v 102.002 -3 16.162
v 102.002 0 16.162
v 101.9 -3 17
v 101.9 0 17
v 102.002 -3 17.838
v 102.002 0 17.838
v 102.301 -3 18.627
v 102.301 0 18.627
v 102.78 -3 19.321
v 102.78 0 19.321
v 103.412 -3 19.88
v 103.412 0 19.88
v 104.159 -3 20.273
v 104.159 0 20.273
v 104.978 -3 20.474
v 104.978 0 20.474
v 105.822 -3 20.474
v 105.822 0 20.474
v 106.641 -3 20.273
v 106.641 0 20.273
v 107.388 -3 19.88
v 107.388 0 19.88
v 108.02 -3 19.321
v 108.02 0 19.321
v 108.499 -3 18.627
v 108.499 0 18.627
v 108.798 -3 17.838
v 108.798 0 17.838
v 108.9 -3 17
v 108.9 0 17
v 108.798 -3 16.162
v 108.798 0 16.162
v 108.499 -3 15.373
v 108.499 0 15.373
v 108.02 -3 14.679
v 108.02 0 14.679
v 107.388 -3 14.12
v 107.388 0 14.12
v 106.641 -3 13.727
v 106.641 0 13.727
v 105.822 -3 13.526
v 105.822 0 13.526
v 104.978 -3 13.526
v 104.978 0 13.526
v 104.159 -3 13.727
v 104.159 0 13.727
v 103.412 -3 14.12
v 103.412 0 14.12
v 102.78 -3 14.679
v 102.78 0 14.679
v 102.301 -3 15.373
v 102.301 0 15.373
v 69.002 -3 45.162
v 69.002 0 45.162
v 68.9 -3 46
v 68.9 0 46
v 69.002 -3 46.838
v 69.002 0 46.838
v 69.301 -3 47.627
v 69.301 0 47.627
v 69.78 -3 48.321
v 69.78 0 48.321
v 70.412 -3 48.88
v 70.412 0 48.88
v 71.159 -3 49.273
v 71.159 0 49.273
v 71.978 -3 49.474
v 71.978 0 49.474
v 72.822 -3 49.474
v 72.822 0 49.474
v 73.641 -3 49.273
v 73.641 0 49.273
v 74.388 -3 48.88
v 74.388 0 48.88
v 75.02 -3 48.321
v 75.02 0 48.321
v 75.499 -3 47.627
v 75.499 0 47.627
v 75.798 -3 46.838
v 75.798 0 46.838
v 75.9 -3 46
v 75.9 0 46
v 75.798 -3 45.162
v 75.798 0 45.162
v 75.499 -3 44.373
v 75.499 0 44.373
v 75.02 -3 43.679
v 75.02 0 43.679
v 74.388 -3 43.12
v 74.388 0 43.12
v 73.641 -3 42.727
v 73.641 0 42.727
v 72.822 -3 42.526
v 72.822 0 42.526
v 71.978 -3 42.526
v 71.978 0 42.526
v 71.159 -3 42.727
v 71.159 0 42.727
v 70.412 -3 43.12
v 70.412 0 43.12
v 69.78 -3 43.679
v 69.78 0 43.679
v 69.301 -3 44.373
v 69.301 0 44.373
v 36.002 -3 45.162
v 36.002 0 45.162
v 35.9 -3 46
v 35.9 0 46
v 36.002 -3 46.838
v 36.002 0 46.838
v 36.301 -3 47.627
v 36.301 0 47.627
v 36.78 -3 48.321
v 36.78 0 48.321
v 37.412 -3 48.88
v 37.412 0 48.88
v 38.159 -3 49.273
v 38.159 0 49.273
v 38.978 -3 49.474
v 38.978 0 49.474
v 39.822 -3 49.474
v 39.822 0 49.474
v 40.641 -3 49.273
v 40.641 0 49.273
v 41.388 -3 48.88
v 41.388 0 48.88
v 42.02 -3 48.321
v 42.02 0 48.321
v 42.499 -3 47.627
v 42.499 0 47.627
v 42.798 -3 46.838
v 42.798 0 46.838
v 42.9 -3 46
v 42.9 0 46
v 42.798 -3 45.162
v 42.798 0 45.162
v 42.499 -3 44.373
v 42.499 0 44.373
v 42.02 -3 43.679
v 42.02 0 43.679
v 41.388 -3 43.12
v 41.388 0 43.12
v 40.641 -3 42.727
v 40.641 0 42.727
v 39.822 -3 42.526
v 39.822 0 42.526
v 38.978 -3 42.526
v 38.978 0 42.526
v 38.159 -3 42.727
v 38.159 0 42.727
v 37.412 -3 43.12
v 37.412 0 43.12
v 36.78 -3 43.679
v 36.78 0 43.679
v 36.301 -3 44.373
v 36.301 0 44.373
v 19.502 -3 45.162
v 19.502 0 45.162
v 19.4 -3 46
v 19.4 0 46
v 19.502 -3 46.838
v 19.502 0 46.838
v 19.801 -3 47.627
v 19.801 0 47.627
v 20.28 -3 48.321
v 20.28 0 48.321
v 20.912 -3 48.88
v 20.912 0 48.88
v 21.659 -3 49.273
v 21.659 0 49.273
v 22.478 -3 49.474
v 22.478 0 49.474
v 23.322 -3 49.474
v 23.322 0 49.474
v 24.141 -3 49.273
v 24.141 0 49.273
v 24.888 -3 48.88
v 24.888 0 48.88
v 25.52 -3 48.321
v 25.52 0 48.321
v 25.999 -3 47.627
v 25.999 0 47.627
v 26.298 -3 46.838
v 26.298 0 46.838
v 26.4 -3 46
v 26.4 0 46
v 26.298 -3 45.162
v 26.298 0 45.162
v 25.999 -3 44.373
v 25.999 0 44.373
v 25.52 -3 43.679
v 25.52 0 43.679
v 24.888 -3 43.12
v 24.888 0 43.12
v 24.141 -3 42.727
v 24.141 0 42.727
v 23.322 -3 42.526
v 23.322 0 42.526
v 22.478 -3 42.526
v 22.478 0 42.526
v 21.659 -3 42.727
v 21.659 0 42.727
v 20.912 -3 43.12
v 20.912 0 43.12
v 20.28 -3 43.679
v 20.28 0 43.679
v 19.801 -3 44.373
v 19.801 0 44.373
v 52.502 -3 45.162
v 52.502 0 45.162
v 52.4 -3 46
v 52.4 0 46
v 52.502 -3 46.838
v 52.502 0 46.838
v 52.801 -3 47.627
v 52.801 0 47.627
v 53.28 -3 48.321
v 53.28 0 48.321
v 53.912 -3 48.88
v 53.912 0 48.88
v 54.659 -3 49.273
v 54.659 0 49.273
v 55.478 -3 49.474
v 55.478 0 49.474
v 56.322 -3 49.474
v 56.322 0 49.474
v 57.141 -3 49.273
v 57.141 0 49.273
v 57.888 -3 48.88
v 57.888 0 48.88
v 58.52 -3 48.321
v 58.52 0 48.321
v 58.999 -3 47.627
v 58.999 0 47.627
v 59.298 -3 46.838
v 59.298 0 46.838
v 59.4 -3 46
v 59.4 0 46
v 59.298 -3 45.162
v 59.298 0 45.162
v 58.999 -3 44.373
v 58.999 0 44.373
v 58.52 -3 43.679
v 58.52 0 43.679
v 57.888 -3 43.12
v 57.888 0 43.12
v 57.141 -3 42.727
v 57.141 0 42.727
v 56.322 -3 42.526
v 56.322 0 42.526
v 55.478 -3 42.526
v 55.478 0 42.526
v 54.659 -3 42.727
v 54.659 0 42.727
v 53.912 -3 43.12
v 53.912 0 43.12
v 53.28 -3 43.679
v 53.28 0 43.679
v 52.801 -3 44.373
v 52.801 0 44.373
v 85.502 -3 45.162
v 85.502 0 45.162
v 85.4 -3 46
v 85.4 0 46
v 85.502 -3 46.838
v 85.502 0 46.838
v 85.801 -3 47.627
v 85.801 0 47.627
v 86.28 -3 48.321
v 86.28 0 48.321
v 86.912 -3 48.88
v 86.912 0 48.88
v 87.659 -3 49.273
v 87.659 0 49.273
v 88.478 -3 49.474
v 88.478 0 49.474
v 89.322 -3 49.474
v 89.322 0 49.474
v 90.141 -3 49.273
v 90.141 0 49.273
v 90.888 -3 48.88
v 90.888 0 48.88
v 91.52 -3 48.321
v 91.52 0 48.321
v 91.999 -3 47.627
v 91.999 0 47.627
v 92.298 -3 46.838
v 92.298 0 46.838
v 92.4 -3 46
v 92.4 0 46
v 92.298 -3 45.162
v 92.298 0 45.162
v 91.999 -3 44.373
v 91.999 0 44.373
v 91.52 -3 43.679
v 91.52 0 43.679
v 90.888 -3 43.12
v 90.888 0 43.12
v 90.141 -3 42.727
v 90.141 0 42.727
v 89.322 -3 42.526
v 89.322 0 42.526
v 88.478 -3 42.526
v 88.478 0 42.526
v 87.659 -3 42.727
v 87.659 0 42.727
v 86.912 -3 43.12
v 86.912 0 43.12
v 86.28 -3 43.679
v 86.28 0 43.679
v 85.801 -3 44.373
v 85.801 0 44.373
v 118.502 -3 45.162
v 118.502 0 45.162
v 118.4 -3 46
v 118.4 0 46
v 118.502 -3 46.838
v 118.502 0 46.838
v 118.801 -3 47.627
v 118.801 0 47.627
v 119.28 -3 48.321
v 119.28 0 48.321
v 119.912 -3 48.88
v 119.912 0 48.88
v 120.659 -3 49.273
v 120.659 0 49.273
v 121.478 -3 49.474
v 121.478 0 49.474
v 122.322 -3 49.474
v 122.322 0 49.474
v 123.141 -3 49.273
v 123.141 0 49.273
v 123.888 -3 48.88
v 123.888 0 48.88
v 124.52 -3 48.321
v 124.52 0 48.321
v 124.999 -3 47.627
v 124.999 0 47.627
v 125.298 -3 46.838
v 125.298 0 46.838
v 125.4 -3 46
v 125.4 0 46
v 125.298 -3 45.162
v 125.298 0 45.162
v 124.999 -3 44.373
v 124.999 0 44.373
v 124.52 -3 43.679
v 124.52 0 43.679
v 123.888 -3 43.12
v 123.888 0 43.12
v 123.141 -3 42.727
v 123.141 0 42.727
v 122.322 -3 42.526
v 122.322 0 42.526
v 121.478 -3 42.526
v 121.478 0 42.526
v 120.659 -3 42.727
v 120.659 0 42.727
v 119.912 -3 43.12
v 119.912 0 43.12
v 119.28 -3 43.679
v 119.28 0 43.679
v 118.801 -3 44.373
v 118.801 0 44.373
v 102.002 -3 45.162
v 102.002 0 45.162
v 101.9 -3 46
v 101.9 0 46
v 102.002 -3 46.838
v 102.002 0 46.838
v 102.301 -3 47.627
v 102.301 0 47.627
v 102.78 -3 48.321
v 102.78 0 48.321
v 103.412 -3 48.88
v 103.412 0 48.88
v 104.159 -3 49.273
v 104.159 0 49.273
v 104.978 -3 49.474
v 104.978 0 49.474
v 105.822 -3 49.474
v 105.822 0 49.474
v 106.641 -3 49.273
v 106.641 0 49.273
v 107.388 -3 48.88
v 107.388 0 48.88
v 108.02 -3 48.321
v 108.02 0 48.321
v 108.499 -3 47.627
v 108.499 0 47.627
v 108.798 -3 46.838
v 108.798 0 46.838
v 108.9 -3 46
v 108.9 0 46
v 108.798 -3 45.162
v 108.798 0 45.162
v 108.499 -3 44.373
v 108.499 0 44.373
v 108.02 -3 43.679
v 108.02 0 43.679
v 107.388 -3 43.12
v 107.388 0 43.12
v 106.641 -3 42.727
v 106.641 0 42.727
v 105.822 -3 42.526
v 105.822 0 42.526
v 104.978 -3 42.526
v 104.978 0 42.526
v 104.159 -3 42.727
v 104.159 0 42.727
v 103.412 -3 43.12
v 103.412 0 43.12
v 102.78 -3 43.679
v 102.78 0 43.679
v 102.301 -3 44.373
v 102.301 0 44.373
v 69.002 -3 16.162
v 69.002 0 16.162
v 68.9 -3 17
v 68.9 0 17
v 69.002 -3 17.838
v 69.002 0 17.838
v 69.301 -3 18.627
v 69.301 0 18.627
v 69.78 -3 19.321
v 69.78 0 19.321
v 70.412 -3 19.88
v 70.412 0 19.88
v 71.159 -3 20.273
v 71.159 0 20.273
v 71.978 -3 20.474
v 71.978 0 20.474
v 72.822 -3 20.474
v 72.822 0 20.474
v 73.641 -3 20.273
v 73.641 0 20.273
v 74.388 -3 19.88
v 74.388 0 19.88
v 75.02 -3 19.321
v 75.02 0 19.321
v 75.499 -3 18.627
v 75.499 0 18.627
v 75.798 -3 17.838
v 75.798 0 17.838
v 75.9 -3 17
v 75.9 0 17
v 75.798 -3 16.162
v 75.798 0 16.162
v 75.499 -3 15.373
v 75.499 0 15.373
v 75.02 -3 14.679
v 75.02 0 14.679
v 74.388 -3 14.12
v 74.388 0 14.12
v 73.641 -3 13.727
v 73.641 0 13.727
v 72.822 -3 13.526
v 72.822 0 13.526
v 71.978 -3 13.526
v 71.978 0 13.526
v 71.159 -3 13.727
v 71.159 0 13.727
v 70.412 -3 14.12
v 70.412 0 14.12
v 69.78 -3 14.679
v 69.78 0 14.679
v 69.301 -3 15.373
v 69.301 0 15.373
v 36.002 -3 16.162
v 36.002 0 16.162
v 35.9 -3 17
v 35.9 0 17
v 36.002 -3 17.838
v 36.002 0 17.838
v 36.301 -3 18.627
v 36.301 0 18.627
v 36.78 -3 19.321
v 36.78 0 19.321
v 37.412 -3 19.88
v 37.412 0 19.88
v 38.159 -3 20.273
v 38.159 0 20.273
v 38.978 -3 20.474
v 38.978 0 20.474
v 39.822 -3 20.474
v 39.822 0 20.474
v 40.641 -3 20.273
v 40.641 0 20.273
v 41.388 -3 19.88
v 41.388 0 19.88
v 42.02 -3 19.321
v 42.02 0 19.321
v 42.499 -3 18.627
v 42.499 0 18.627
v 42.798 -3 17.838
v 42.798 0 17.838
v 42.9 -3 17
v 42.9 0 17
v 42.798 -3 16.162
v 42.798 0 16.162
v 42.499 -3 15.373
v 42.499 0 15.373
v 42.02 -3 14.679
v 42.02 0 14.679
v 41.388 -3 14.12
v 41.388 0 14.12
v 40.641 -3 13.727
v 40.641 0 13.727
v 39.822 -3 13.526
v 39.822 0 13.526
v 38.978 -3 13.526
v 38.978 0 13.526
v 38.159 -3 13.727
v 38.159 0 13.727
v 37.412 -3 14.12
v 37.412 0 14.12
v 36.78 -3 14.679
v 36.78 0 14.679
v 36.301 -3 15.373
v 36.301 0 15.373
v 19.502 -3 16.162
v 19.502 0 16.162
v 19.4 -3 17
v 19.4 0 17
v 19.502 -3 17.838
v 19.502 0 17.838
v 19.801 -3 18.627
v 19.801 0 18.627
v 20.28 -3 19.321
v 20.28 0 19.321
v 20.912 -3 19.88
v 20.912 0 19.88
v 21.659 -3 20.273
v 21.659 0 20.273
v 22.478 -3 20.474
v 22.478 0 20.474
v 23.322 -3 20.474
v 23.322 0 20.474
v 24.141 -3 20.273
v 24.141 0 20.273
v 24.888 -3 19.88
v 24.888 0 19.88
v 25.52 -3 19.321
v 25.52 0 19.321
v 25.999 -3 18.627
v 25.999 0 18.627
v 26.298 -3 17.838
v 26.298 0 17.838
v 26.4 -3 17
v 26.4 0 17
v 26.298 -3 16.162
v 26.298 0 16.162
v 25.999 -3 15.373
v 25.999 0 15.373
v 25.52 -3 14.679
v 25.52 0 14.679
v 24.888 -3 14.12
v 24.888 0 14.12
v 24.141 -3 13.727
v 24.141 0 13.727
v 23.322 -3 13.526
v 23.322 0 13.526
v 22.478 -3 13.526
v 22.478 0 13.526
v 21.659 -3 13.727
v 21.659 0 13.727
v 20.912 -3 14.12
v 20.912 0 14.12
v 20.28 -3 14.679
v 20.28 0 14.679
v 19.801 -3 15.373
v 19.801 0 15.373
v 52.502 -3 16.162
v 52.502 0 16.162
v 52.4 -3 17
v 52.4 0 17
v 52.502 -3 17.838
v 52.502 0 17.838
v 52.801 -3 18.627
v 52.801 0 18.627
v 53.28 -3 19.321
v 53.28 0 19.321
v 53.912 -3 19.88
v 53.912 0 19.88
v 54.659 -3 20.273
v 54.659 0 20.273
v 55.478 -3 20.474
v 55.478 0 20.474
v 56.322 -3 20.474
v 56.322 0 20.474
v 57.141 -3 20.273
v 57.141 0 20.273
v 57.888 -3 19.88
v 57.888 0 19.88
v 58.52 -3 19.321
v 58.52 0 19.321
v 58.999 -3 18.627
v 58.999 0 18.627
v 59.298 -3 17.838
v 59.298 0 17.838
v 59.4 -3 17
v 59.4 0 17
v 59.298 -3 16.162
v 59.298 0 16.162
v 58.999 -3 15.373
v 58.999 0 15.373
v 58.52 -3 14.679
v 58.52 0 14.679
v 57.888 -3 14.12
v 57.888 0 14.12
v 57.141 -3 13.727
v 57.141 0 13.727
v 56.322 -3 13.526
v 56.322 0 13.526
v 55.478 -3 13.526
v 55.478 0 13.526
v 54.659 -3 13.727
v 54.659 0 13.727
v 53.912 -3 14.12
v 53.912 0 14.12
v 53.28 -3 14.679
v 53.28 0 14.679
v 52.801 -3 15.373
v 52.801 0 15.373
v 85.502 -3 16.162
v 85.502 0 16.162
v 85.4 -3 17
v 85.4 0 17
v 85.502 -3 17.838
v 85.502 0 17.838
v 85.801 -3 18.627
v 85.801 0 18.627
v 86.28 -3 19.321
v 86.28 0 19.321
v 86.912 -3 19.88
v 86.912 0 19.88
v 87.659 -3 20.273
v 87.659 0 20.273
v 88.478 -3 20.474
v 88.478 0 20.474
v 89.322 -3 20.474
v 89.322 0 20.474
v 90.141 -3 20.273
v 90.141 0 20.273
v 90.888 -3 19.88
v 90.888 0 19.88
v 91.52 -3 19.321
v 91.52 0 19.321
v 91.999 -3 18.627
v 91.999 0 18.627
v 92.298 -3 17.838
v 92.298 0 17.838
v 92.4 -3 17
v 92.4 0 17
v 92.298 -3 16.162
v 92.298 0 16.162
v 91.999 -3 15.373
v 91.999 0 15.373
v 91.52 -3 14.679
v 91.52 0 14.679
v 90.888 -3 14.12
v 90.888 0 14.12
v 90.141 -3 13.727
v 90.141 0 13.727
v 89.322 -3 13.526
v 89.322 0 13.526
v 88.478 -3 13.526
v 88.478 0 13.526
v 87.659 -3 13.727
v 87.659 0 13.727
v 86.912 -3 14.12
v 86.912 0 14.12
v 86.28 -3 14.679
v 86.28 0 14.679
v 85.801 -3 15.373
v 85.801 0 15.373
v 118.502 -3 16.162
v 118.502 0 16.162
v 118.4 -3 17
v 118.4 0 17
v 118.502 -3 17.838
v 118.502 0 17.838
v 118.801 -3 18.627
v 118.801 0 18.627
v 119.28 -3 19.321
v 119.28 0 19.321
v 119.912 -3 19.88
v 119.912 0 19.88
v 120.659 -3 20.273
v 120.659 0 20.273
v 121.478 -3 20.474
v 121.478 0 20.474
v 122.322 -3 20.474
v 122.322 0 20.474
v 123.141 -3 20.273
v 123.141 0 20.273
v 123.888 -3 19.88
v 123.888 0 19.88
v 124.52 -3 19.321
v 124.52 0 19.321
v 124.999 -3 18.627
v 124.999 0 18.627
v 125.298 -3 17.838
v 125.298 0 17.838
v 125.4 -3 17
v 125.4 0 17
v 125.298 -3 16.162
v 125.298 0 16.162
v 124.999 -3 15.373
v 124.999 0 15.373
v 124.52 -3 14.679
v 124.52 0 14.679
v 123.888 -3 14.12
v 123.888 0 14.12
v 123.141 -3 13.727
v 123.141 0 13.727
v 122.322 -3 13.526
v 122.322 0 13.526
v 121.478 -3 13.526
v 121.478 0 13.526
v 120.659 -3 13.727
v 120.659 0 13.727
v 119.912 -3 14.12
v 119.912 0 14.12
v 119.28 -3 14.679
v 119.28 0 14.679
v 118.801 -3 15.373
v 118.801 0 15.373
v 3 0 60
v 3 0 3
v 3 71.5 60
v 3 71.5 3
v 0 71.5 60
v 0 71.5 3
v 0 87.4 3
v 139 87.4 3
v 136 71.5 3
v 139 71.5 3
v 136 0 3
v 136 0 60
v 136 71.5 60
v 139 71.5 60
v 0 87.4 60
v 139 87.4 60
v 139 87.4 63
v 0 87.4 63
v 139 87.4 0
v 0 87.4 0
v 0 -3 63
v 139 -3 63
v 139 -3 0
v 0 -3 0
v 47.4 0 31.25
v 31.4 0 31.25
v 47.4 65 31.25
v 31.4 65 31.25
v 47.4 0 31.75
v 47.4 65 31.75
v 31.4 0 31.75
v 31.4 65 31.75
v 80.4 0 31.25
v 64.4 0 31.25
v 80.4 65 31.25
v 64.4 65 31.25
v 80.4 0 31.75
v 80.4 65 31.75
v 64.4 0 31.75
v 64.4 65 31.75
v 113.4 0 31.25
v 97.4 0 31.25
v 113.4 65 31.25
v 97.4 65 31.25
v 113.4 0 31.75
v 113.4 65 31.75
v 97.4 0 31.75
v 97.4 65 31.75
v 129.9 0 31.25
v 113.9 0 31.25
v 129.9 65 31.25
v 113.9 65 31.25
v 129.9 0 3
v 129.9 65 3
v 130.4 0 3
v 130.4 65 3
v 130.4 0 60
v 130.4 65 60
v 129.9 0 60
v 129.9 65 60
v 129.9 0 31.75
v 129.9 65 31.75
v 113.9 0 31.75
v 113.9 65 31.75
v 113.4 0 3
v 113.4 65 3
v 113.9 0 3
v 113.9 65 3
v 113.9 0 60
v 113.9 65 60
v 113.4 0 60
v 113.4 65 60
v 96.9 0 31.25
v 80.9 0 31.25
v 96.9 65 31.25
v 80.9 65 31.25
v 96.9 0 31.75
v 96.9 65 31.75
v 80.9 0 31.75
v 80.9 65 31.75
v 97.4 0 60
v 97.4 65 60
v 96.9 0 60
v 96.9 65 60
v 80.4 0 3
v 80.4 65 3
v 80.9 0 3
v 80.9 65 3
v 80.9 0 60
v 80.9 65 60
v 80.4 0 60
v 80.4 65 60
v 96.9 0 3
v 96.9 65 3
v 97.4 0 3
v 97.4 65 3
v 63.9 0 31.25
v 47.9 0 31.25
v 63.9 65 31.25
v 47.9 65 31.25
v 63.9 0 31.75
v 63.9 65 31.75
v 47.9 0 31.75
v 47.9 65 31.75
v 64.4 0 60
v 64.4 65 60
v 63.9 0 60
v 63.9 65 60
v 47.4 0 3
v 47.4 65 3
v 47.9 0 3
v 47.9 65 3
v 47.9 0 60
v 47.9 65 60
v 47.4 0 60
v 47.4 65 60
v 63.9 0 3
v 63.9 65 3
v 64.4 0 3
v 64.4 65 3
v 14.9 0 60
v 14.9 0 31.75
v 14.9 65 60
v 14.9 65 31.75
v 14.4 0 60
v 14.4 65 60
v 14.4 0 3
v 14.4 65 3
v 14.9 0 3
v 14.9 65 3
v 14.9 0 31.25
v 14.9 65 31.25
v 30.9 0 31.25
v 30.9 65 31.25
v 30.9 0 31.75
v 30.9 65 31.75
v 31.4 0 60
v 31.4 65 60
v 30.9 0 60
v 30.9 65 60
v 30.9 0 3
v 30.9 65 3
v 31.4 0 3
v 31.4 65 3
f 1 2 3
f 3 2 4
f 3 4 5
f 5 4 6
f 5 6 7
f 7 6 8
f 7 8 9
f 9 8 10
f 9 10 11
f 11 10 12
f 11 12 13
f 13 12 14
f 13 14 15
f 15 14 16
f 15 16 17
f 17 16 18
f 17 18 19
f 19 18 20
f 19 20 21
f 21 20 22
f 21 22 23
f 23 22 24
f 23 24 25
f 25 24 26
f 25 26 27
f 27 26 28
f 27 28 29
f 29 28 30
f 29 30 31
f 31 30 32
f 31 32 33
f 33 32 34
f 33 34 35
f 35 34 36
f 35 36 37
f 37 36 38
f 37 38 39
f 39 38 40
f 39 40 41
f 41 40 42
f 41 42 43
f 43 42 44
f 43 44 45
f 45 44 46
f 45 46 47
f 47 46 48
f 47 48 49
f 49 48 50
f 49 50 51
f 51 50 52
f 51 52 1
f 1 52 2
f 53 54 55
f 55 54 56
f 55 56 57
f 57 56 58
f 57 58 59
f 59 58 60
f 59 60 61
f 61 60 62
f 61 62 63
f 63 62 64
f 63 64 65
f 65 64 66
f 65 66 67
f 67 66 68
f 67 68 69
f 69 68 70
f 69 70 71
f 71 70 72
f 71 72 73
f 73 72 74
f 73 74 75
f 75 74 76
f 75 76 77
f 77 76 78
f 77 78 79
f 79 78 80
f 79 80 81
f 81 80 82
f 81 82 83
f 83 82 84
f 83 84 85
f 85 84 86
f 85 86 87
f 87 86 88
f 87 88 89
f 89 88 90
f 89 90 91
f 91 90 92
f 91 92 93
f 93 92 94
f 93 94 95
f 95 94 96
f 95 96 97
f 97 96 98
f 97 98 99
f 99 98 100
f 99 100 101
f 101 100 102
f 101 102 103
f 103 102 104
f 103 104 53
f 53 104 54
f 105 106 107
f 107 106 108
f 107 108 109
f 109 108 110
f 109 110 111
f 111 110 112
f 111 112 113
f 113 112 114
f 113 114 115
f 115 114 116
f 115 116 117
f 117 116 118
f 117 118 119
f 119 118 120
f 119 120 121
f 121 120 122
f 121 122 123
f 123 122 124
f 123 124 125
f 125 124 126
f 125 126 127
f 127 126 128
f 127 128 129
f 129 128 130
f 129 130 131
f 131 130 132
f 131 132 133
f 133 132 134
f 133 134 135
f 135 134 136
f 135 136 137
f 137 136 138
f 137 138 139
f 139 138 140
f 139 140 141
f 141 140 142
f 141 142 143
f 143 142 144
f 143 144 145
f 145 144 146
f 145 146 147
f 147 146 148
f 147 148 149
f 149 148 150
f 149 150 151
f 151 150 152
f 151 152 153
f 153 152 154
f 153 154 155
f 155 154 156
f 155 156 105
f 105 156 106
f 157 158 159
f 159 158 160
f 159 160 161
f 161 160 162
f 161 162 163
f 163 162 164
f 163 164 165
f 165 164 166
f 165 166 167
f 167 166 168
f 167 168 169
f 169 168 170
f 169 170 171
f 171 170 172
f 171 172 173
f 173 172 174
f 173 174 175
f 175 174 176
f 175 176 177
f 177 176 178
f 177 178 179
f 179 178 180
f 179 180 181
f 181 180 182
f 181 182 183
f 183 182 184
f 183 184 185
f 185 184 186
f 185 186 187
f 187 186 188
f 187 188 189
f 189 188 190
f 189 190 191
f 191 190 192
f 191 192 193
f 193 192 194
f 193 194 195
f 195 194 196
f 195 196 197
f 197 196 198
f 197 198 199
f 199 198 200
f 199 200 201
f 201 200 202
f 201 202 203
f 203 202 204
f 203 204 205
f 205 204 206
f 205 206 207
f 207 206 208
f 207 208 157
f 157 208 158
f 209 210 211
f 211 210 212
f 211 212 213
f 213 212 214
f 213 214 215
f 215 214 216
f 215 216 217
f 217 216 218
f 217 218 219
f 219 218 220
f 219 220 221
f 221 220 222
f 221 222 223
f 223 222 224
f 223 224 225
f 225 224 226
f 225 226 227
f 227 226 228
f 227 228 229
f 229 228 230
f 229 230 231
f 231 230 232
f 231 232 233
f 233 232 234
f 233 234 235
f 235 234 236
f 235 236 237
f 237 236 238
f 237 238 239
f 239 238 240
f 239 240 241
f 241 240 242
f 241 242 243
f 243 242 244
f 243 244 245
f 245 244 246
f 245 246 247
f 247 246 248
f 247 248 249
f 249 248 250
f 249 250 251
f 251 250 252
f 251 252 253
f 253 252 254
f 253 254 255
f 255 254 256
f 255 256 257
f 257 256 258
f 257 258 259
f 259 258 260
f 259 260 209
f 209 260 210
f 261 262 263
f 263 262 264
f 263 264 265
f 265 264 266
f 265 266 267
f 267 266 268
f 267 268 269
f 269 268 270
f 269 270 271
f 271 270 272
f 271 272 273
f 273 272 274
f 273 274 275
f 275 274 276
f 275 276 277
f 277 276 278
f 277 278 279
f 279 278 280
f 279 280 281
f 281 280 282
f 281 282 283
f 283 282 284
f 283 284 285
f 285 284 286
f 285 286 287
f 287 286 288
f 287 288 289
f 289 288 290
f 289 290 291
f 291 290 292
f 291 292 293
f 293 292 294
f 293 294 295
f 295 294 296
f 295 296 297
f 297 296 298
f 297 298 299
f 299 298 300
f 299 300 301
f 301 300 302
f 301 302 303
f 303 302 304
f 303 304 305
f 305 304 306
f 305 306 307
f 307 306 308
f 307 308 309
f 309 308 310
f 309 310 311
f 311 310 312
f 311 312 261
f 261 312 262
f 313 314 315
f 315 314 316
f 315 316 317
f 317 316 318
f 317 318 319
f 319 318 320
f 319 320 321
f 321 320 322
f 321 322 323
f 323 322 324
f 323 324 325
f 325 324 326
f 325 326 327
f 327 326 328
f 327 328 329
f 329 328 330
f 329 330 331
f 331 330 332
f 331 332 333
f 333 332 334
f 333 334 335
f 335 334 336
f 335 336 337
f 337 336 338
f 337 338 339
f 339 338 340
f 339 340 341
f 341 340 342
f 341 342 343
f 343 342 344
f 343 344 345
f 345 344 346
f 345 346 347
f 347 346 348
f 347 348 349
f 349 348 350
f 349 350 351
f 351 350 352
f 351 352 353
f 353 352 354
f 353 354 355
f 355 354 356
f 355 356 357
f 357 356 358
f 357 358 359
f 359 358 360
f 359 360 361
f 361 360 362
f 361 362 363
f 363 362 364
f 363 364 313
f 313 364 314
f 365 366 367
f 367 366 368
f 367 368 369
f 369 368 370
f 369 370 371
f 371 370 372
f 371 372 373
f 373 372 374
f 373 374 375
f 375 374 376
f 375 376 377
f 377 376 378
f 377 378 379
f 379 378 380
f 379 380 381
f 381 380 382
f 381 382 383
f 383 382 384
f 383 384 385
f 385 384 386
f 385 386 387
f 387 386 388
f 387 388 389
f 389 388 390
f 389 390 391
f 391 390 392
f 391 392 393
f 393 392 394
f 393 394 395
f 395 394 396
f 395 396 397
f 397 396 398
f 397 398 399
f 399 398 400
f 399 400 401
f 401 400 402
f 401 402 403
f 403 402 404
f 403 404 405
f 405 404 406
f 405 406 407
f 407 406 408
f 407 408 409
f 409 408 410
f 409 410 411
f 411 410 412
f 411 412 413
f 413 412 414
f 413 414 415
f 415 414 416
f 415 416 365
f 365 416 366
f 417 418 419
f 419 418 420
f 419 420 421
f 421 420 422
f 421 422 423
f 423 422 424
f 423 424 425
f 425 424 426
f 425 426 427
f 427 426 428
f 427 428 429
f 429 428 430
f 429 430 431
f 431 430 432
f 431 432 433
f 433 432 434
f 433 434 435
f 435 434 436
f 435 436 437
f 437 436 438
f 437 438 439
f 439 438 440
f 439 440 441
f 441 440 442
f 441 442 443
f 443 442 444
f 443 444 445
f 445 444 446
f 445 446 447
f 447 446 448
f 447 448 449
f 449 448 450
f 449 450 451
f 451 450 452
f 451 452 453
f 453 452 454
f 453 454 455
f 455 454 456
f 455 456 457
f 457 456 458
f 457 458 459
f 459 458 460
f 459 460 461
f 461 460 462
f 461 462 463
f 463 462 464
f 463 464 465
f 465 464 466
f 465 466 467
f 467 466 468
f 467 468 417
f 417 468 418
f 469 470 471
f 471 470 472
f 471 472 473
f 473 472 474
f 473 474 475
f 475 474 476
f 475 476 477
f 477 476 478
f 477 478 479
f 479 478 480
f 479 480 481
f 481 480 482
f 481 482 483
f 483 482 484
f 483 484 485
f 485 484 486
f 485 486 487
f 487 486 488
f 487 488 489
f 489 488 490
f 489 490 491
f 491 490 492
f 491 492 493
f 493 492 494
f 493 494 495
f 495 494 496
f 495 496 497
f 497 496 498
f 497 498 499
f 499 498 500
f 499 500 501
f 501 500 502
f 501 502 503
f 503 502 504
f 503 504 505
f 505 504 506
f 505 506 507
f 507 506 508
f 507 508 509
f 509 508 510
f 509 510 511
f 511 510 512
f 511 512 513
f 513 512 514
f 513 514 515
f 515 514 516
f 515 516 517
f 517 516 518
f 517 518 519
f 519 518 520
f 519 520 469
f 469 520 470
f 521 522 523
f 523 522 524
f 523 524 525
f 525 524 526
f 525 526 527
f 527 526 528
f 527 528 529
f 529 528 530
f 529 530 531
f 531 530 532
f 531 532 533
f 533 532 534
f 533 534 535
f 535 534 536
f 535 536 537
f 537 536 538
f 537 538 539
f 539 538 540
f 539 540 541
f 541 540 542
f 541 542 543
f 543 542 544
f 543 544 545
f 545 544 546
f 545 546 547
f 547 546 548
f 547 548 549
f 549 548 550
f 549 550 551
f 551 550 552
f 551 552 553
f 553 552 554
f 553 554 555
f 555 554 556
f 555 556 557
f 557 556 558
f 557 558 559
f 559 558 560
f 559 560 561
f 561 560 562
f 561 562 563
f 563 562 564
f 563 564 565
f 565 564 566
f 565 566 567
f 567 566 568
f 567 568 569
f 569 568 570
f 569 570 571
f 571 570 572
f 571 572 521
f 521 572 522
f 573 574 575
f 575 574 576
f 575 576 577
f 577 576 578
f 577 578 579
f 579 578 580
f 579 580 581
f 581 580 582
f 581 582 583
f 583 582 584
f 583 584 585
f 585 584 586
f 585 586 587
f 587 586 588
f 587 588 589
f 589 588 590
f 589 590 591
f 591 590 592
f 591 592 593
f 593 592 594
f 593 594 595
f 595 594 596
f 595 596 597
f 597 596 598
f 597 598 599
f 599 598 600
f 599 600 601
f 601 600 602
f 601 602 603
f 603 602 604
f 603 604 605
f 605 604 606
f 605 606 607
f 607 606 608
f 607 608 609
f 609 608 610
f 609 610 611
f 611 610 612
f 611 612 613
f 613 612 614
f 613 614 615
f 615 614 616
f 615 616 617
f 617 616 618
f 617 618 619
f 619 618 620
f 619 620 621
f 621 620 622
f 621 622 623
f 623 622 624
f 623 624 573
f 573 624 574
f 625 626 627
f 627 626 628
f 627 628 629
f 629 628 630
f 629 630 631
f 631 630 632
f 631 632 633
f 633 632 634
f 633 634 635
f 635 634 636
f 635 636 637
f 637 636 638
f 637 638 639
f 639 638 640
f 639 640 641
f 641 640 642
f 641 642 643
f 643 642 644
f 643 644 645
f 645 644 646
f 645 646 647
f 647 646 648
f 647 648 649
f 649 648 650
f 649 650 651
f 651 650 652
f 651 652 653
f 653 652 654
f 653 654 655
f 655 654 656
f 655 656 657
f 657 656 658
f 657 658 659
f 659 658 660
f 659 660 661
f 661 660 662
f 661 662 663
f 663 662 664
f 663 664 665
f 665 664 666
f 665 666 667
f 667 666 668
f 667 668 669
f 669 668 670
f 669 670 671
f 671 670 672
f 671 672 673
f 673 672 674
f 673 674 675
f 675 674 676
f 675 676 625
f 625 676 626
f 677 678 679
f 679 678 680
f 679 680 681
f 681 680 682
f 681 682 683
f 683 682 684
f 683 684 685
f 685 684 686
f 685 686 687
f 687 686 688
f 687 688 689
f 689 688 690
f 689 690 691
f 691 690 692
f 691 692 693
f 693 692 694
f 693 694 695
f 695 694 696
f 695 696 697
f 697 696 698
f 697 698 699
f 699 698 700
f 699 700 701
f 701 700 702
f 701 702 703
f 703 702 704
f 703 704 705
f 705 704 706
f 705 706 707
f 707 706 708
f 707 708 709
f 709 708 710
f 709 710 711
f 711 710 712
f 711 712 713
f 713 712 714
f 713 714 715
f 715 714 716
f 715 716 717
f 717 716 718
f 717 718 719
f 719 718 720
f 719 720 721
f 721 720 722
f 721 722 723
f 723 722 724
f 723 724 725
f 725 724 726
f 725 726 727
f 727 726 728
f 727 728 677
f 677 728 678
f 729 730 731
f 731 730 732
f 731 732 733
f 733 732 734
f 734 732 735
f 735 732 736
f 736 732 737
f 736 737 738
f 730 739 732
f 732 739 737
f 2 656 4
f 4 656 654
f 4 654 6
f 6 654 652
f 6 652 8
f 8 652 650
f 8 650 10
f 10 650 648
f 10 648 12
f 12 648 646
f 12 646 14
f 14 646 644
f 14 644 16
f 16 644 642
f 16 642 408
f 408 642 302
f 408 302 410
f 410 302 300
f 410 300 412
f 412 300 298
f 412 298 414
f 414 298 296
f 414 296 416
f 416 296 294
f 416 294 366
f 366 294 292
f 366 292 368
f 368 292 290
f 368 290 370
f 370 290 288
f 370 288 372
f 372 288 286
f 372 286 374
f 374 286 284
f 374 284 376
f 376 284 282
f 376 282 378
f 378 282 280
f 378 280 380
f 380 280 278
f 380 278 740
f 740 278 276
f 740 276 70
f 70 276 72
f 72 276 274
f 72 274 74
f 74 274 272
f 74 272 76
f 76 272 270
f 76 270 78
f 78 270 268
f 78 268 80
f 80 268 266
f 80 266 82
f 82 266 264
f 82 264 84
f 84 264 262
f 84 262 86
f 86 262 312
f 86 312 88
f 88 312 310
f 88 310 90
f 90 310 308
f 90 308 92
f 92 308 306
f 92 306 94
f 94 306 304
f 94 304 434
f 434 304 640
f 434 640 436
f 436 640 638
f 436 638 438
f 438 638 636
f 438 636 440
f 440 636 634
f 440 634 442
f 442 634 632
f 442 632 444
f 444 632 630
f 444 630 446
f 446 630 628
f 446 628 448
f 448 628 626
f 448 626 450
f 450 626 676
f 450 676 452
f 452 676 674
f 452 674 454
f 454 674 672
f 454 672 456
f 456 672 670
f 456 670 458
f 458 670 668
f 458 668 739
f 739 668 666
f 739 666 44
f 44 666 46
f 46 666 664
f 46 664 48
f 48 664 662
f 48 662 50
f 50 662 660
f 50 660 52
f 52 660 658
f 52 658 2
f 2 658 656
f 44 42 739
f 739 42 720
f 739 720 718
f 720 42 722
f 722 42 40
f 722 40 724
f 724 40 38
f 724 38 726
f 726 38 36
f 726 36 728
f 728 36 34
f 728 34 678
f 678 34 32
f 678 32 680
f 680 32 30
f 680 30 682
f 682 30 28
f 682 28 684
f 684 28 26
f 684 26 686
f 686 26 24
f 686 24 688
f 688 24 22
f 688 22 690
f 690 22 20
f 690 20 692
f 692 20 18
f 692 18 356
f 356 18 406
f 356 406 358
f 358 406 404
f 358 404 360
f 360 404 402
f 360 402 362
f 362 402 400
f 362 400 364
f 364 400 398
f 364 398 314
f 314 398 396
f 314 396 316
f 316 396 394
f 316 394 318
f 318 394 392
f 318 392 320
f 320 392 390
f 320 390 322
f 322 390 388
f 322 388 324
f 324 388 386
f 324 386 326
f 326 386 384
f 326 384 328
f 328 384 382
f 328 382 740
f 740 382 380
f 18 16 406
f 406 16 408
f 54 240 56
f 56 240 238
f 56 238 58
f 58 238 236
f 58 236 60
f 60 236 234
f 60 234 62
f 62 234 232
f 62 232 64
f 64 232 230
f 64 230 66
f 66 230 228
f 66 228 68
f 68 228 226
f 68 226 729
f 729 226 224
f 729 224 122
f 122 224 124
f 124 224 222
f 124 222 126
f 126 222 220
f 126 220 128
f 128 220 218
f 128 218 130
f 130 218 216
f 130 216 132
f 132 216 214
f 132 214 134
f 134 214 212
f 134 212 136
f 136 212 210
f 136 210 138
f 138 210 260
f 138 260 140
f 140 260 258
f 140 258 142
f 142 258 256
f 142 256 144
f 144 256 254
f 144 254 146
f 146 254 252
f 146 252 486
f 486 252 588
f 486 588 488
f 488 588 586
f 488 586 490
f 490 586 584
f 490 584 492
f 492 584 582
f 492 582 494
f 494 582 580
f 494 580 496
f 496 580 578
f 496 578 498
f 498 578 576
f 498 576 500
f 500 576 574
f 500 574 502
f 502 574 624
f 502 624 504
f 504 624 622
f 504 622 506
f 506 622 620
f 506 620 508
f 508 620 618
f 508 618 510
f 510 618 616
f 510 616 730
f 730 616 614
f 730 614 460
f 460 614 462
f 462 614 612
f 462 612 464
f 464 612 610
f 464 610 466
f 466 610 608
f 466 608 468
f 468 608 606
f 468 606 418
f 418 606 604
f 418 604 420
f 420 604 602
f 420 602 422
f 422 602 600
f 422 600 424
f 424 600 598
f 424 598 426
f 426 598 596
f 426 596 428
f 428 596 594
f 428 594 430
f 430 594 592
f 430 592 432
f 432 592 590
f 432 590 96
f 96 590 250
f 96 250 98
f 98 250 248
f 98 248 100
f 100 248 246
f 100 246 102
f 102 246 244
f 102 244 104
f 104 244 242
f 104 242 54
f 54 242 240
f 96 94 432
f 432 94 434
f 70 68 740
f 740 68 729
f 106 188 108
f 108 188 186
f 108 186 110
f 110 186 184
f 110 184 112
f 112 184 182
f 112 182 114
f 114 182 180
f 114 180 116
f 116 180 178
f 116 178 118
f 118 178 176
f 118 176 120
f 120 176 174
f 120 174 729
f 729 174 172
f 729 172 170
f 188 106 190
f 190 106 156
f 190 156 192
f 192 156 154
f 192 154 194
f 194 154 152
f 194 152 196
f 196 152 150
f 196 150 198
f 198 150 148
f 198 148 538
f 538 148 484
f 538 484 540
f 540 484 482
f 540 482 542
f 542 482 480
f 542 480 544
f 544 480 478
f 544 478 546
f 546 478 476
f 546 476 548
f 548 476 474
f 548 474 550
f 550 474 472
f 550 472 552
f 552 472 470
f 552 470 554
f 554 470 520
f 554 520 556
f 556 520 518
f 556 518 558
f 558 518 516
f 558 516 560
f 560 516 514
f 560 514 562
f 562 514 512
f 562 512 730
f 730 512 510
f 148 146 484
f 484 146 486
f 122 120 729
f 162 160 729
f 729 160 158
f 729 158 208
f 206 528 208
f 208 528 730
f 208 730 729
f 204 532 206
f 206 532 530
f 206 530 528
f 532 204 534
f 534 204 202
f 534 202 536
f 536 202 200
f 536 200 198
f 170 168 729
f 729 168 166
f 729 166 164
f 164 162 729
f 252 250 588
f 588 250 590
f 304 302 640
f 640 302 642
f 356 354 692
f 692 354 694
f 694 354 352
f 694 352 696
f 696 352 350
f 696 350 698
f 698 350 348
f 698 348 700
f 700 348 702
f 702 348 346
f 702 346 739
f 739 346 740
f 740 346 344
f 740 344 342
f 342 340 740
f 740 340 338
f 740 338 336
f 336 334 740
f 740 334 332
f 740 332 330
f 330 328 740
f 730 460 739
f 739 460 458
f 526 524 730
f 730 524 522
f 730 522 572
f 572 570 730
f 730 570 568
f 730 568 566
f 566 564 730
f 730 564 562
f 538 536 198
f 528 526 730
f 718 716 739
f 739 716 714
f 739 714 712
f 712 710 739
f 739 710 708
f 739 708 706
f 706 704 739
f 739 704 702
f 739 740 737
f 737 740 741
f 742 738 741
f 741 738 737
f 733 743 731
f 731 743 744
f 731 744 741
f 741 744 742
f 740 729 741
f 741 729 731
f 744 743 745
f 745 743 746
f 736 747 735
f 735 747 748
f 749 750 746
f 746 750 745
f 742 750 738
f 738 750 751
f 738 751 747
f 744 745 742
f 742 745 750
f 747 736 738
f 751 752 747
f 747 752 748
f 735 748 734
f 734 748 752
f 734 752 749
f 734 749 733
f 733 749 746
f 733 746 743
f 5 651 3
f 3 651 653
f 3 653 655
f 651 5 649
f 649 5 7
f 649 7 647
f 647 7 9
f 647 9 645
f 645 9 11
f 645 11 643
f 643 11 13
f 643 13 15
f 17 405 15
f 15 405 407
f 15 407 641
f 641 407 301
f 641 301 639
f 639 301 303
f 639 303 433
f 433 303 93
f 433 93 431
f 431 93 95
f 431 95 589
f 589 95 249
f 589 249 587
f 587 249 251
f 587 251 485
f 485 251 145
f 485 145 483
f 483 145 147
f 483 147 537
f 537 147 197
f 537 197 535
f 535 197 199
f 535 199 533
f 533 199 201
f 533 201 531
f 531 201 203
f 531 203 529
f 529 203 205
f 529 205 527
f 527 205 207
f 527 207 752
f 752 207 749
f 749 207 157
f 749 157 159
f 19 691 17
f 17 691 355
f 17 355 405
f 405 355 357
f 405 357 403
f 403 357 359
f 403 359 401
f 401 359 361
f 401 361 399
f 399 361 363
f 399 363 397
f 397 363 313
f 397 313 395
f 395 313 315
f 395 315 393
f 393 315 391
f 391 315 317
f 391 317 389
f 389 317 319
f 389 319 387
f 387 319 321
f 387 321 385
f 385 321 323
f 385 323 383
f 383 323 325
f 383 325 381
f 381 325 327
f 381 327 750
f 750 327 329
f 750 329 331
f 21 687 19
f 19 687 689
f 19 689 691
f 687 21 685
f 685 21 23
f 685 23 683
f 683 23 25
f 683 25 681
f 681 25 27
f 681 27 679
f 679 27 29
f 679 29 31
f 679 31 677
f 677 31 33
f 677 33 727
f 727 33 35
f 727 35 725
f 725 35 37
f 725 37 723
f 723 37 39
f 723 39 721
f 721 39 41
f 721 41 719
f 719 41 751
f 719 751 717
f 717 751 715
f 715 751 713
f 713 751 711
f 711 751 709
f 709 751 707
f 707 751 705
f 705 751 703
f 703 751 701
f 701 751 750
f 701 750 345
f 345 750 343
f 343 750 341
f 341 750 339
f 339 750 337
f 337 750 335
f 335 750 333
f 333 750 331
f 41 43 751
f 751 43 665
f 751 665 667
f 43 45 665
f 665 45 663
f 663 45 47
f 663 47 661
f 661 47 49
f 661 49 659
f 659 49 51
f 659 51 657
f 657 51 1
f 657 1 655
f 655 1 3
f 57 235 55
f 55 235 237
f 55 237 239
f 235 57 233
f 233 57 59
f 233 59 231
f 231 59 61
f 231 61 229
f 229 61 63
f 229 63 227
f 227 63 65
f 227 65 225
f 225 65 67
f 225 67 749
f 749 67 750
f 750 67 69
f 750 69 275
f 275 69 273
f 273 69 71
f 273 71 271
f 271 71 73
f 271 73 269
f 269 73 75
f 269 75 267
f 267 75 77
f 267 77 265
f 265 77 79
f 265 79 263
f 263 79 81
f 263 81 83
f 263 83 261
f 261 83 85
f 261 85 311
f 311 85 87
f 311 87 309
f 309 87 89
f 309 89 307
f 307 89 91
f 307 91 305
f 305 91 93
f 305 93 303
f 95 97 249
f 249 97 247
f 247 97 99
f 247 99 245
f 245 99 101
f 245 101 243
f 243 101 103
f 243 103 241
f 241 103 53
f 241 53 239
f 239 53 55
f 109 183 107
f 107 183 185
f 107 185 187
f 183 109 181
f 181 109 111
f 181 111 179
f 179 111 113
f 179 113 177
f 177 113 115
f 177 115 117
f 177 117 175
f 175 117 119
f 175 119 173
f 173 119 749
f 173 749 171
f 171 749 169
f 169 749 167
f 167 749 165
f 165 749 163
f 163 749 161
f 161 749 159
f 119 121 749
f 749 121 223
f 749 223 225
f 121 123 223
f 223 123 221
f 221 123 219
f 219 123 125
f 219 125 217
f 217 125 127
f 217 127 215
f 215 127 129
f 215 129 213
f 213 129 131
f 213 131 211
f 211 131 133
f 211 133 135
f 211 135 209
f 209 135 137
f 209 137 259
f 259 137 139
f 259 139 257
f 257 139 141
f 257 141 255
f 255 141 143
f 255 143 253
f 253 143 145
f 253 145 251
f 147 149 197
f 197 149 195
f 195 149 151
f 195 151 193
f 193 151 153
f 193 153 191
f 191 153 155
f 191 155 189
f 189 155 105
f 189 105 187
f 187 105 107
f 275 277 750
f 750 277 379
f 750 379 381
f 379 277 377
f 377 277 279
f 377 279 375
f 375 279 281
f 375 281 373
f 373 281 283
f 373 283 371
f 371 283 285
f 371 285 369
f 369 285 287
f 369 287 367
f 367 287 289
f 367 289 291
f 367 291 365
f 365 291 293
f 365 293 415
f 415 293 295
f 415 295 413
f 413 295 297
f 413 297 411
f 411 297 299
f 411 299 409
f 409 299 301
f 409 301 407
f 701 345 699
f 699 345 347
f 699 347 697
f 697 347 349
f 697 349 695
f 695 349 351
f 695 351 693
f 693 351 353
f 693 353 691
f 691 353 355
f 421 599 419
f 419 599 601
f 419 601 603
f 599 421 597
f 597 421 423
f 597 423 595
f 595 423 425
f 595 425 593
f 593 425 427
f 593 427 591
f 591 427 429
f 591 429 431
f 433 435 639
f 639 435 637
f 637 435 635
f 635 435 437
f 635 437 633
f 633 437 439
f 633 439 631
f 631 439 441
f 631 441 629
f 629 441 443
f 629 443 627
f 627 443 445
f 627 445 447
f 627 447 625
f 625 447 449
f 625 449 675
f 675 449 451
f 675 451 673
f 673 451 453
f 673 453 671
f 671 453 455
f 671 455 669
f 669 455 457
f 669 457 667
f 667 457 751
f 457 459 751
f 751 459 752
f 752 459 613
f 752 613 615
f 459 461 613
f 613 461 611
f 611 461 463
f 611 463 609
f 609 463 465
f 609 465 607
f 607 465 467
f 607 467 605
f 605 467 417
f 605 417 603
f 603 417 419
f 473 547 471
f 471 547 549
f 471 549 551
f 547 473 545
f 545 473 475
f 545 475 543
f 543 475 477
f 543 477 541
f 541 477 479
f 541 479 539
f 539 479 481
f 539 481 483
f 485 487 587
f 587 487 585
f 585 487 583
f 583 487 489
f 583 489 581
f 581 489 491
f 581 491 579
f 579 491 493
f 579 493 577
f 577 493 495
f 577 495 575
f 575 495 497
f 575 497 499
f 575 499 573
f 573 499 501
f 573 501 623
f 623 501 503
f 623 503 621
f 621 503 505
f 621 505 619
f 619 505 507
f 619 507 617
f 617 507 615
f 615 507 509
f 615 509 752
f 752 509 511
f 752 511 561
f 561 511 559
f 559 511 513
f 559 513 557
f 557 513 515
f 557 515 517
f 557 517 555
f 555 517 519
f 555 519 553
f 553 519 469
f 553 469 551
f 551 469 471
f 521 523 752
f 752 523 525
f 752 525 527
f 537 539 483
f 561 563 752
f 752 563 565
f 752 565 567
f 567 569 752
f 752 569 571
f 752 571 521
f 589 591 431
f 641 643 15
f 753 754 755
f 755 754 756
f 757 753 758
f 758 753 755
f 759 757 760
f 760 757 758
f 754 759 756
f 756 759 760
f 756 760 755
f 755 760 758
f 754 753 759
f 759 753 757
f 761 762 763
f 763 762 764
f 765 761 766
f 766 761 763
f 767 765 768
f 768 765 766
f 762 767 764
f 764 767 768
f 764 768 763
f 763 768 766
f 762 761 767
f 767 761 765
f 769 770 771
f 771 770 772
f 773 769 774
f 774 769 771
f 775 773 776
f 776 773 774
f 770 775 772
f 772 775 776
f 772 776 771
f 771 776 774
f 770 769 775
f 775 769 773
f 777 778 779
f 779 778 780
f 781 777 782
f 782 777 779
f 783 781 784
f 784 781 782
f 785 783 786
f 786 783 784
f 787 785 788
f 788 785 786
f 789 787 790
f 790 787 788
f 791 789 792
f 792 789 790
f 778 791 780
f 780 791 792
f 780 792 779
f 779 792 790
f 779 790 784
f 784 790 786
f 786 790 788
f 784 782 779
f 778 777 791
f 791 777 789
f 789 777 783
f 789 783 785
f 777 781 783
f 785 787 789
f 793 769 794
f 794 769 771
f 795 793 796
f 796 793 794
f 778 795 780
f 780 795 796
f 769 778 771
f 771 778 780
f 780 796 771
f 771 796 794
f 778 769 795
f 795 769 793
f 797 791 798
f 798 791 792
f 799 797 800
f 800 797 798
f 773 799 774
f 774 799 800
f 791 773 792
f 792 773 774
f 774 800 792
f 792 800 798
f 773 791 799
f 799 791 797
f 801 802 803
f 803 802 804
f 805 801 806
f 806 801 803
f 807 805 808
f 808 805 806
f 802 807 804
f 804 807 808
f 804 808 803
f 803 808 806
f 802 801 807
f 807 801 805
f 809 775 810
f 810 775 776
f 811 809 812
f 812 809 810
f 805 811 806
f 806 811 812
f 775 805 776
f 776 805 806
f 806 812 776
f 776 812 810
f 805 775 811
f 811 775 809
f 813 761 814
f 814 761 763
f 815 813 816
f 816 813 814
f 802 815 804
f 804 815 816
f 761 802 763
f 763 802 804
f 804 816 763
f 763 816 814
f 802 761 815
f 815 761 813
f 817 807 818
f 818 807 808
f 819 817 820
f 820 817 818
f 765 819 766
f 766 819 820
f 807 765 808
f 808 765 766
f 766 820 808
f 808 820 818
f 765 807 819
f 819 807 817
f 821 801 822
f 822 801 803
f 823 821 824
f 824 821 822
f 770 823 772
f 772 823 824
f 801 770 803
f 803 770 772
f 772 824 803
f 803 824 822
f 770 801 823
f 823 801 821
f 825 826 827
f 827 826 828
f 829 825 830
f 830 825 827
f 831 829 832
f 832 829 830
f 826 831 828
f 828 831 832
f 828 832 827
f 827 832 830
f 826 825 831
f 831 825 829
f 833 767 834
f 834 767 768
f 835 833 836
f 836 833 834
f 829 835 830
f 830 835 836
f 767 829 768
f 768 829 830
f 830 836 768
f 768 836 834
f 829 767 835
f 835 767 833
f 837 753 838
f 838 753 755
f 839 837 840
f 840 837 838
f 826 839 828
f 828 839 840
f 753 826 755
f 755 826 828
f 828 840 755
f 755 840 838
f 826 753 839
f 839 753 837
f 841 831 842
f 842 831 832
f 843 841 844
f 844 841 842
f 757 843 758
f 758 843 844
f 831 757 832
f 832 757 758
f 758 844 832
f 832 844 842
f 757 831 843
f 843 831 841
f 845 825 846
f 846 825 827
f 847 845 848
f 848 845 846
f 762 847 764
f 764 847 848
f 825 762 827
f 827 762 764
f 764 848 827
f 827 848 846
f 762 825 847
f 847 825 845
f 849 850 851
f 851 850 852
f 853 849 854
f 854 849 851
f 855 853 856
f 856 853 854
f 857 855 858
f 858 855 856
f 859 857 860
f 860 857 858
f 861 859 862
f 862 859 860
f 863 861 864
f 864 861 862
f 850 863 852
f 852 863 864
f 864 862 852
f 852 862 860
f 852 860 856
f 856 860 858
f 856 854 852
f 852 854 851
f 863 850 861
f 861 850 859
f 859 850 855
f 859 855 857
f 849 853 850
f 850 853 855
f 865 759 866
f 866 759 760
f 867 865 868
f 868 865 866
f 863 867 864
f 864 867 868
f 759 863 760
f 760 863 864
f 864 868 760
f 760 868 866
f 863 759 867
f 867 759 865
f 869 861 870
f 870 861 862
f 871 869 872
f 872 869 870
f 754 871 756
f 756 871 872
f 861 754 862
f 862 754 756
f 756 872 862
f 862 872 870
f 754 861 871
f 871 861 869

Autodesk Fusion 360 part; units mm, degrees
sketch "Sketch1" plane through (0, 0, 0) normal (0, 1, 0) x (1, 0, 0)
  line L0 (0, 0) -> (139, 0)
  line L1 (139, 0) -> (139, -63)
  line L2 (139, -63) -> (0, -63)
  line L3 (0, -63) -> (0, 0)
  line L4 (0, 0) -> (139, 0)
  line L5 (139, 0) -> (139, -3)
  line L6 (139, -3) -> (0, -3)
  line L7 (0, -3) -> (0, 0)
  line L8 (0, -60) -> (139, -60)
  line L9 (139, -60) -> (139, -63)
  line L10 (139, -63) -> (0, -63)
  line L11 (0, -63) -> (0, -60)
  line L12 (136, -3) -> (139, -3)
  line L13 (139, -3) -> (139, -60)
  line L14 (139, -60) -> (136, -60)
  line L15 (136, -60) -> (136, -3)
  line L16 (0, -3) -> (3, -3)
  line L17 (3, -3) -> (3, -60)
  line L18 (3, -60) -> (0, -60)
  line L19 (0, -60) -> (0, -3)
  circle A0 centre (121.9, -46) radius 3.5
  line L20 (113.4, -3) -> (113.9, -3)
  line L21 (113.9, -3) -> (113.9, -60)
  line L22 (113.9, -60) -> (113.4, -60)
  line L23 (113.4, -60) -> (113.4, -3)
  circle A1 centre (121.9, -17) radius 3.5
  circle A2 centre (121.9, -46) radius 3.5
  line L24 (113.4, -3) -> (113.9, -3)
  line L25 (113.9, -60) -> (113.4, -60)
  line L26 (113.9, -3) -> (113.9, -60)
  circle A3 centre (121.9, -17) radius 3.5
  line L27 (113.4, -60) -> (113.4, -3)
  line L28 (96.9, -60) -> (96.9, -3)
  circle A4 centre (105.4, -46) radius 3.5
  line L29 (97.4, -60) -> (96.9, -60)
  line L30 (96.9, -3) -> (97.4, -3)
  line L31 (96.9, -3) -> (97.4, -3)
  circle A5 centre (105.4, -46) radius 3.5
  line L32 (97.4, -60) -> (96.9, -60)
  circle A6 centre (105.4, -17) radius 3.5
  line L33 (97.4, -3) -> (97.4, -60)
  line L34 (96.9, -60) -> (96.9, -3)
  circle A7 centre (105.4, -17) radius 3.5
  line L35 (97.4, -3) -> (97.4, -60)
  line L36 (80.9, -60) -> (80.4, -60)
  line L37 (80.4, -3) -> (80.9, -3)
  line L38 (80.4, -60) -> (80.4, -3)
  circle A8 centre (88.9, -17) radius 3.5
  line L39 (80.9, -3) -> (80.9, -60)
  circle A9 centre (88.9, -46) radius 3.5
  circle A10 centre (88.9, -17) radius 3.5
  line L40 (80.9, -3) -> (80.9, -60)
  line L41 (80.4, -60) -> (80.4, -3)
  line L42 (80.9, -60) -> (80.4, -60)
  line L43 (80.4, -3) -> (80.9, -3)
  circle A11 centre (88.9, -46) radius 3.5
  line L44 (63.9, -60) -> (63.9, -3)
  line L45 (63.9, -60) -> (63.9, -3)
  line L46 (64.4, -3) -> (64.4, -60)
  line L47 (64.4, -3) -> (64.4, -60)
  circle A12 centre (72.4, -46) radius 3.5
  circle A13 centre (72.4, -17) radius 3.5
  line L48 (63.9, -3) -> (64.4, -3)
  line L49 (63.9, -3) -> (64.4, -3)
  line L50 (64.4, -60) -> (63.9, -60)
  circle A14 centre (72.4, -46) radius 3.5
  circle A15 centre (72.4, -17) radius 3.5
  line L51 (64.4, -60) -> (63.9, -60)
  line L52 (47.4, -60) -> (47.4, -3)
  line L53 (47.9, -3) -> (47.9, -60)
  line L54 (47.4, -60) -> (47.4, -3)
  line L55 (47.4, -3) -> (47.9, -3)
  line L56 (47.4, -3) -> (47.9, -3)
  line L57 (47.9, -3) -> (47.9, -60)
  circle A16 centre (55.9, -17) radius 3.5
  circle A17 centre (55.9, -46) radius 3.5
  line L58 (47.9, -60) -> (47.4, -60)
  circle A18 centre (55.9, -46) radius 3.5
  circle A19 centre (55.9, -17) radius 3.5
  line L59 (47.9, -60) -> (47.4, -60)
  circle A20 centre (39.4, -17) radius 3.5
  line L60 (30.9, -3) -> (31.4, -3)
  circle A21 centre (39.4, -46) radius 3.5
  line L61 (30.9, -60) -> (30.9, -3)
  line L62 (30.9, -60) -> (30.9, -3)
  line L63 (31.4, -3) -> (31.4, -60)
  line L64 (30.9, -3) -> (31.4, -3)
  line L65 (31.4, -3) -> (31.4, -60)
  line L66 (31.4, -60) -> (30.9, -60)
  circle A22 centre (39.4, -17) radius 3.5
  circle A23 centre (39.4, -46) radius 3.5
  line L67 (31.4, -60) -> (30.9, -60)
  line L68 (14.9, -3) -> (14.9, -60)
  line L69 (14.4, -3) -> (14.9, -3)
  line L70 (14.4, -60) -> (14.4, -3)
  line L71 (14.9, -60) -> (14.4, -60)
  line L72 (14.9, -3) -> (14.9, -60)
  circle A24 centre (22.9, -46) radius 3.5
  line L73 (14.4, -60) -> (14.4, -3)
  circle A25 centre (22.9, -46) radius 3.5
  line L74 (14.4, -3) -> (14.9, -3)
  line L75 (14.9, -60) -> (14.4, -60)
  circle A26 centre (22.9, -17) radius 3.5
  circle A27 centre (22.9, -17) radius 3.5
  line L76 (130.4, -60) -> (129.9, -60)
  line L77 (129.9, -3) -> (130.4, -3)
  line L78 (130.4, -60) -> (129.9, -60)
  line L79 (129.9, -3) -> (130.4, -3)
  line L80 (129.9, -60) -> (129.9, -3)
  line L81 (130.4, -3) -> (130.4, -60)
  line L82 (129.9, -60) -> (129.9, -3)
  line L83 (130.4, -3) -> (130.4, -60)
  line L84 (14.9, -31.25) -> (129.9, -31.25)
  line L85 (129.9, -31.25) -> (129.9, -31.75)
  line L86 (129.9, -31.75) -> (14.9, -31.75)
  line L87 (14.9, -31.75) -> (14.9, -31.25)
  line L88 (120, -59) -> (124, -59)
  line L89 (124, -59) -> (124, -60)
  line L90 (124, -60) -> (120, -60)
  line L91 (120, -60) -> (120, -59)
  line L92 (103, -60) -> (107, -60)
  line L93 (107, -60) -> (107, -59)
  line L94 (107, -59) -> (103, -59)
  line L95 (103, -59) -> (103, -60)
  line L96 (21, -3) -> (25, -3)
  line L97 (25, -3) -> (25, -4)
  line L98 (25, -4) -> (21, -4)
  line L99 (21, -4) -> (21, -3)
  line L100 (37, -3) -> (41, -3)
  line L101 (41, -3) -> (41, -4)
  line L102 (41, -4) -> (37, -4)
  line L103 (37, -4) -> (37, -3)
  line L104 (21, -60) -> (25, -60)
  line L105 (25, -60) -> (25, -59)
  line L106 (25, -59) -> (21, -59)
  line L107 (21, -59) -> (21, -60)
  line L108 (37, -60) -> (41, -60)
  line L109 (41, -60) -> (41, -59)
  line L110 (41, -59) -> (37, -59)
  line L111 (37, -59) -> (37, -60)
  line L112 (103, -3) -> (107, -3)
  line L113 (107, -3) -> (107, -4)
  line L114 (107, -4) -> (103, -4)
  line L115 (103, -4) -> (103, -3)
  line L116 (120, -3) -> (124, -3)
  line L117 (124, -3) -> (124, -4)
  line L118 (124, -4) -> (120, -4)
  line L119 (120, -4) -> (120, -3)
  dimension "d1" = 139
  dimension "d2" = 63
  dimension "d3" = 139
  dimension "d4" = 3
  dimension "d5" = 139
  dimension "d6" = 3
  dimension "d7" = 7
  dimension "d8" = 14.1
  dimension "d9" = 14
  dimension "d10" = 0.5
  dimension "d11" = 8
  dimension "d12" = 7
  dimension "d13" = 14
  dimension "d14" = 7
  dimension "d15" = 0.5
  dimension "d16" = 8
  dimension "d17" = 7
  dimension "d18" = 7
  dimension "d19" = 0.5
  dimension "d20" = 8
  dimension "d21" = 7
  dimension "d22" = 7
  dimension "d23" = 0.5
  dimension "d24" = 8
  dimension "d25" = 7
  dimension "d26" = 7
  dimension "d27" = 0.5
  dimension "d28" = 8
  dimension "d29" = 7
  dimension "d30" = 7
  dimension "d31" = 0.5
  dimension "d32" = 8
  dimension "d33" = 7
  dimension "d34" = 7
  dimension "d35" = 0.5
  dimension "d36" = 8
  dimension "d37" = 7
  dimension "d38" = 7
  dimension "d39" = 0.5
  dimension "d40" = 8
  dimension "d41" = 7
  dimension "d42" = 7
  dimension "d43" = 0.5
  dimension "d44" = 8
  dimension "d45" = 7
  dimension "d46" = 7
  dimension "d47" = 0.5
  dimension "d48" = 8
  dimension "d49" = 7
  dimension "d50" = 7
  dimension "d51" = 0.5
  dimension "d52" = 8
  dimension "d53" = 7
  dimension "d54" = 7
  dimension "d55" = 0.5
  dimension "d56" = 8
  dimension "d57" = 7
  dimension "d58" = 7
  dimension "d59" = 0.5
  dimension "d60" = 8
  dimension "d61" = 7
  dimension "d62" = 7
  dimension "d63" = 0.5
  dimension "d64" = 8
  dimension "d65" = 7
  dimension "d66" = 0.5
  dimension "d67" = 0.5
  dimension "d68" = 0.5
  dimension "d69" = 31.25
  dimension "d70" = 4
  dimension "d71" = 1
  dimension "d72" = 5.9
  dimension "d73" = 4
  dimension "d74" = 1
extrude "Extrude1" add sketch "Sketch1" against normal blind 3 contours L0 L1 L3 L4 L5 L6 L7 L12 L16 L20 L24 L30 L31 L37 L43 L48 L49 L55 L56 L60 L64 L69 L74 L77 L79 L96 L100 L112 L116 | L3 L6 L8 L16 L17 L18 L19 | L1 L6 L8 L12 L13 L14 L15 | L1 L2 L3 L8 L9 L10 L11 L14 L18 L22 L25 L29 L32 L36 L42 L50 L51 L58 L59 L66 L67 L71 L75 L76 L78 L90 L92 L104 L108 | L6 L8 L17 L70 L73 | L6 L8 L15 L81 L83 | L6 L8 L68 L69 L70 L71 L72 L73 L74 L75 L87 | L6 L8 L76 L77 L78 L79 L80 L81 L82 L83 L85 | L6 L61 L62 L68 L72 L84 L97 L98 L99 | L6 L21 L26 L80 L82 L84 L117 L118 L119 | L8 L61 L62 L68 L72 L86 L105 L106 L107 | L6 L96 L97 L98 L99 | L61 L62 L68 L72 L84 L86 L87 | L8 L21 L26 L80 L82 L86 L88 L89 L91 | L6 L116 L117 L118 L119 | L21 L26 L80 L82 L84 L85 L86 | L8 L104 L105 L106 L107 | L61 L62 L63 L65 L84 L86 | L6 L60 L61 L62 L63 L64 L65 L84 | L8 L88 L89 L90 L91 | L6 L20 L21 L23 L24 L26 L27 L84 | L21 L23 L26 L27 L84 L86 | L8 L61 L62 L63 L65 L66 L67 L86 | L52 L54 L63 L65 L84 L86 | L6 L52 L54 L63 L65 L84 L101 L102 L103 | L8 L21 L22 L23 L25 L26 L27 L86 | L6 L23 L27 L33 L35 L84 L113 L114 L115 | L23 L27 L33 L35 L84 L86 | L8 L52 L54 L63 L65 L86 L109 L110 L111 | L52 L53 L54 L57 L84 L86 | L6 L52 L53 L54 L55 L56 L57 L84 | L8 L23 L27 L33 L35 L86 L93 L94 L95 | L6 L28 L30 L31 L33 L34 L35 L84 | L28 L33 L34 L35 L84 L86 | L8 L52 L53 L54 L57 L58 L59 L86 | L6 L100 L101 L102 L103 | L44 L45 L53 L57 L84 L86 | L6 L44 L45 L53 L57 L84 | L8 L28 L29 L32 L33 L34 L35 L86 | L6 L112 L113 L114 L115 | L6 L28 L34 L39 L40 L84 | L28 L34 L39 L40 L84 L86 | L8 L108 L109 L110 L111 | L8 L44 L45 L53 L57 L86 | L44 L45 L46 L47 L84 L86 | L6 L44 L45 L46 L47 L48 L49 L84 | L8 L92 L93 L94 L95 | L8 L28 L34 L39 L40 L86 | L6 L37 L38 L39 L40 L41 L43 L84 | L38 L39 L40 L41 L84 L86 | L8 L44 L45 L46 L47 L50 L51 L86 | L38 L41 L46 L47 L84 L86 | L6 L38 L41 L46 L47 L84 | L8 L36 L38 L39 L40 L41 L42 L86 | L8 L38 L41 L46 L47 L86 | A0 A2 | A1 A3 | A4 A5 | A6 A7 | A8 A10 | A9 A11 | A12 A14 | A13 A15 | A16 A19 | A17 A18 | A20 A22 | A21 A23 | A24 A25 | A26 A27 makes body 1
extrude "Extrude2" add sketch "Sketch1" along normal blind 87.4 contours L0 L1 L3 L4 L5 L6 L7 L12 L16 L20 L24 L30 L31 L37 L43 L48 L49 L55 L56 L60 L64 L69 L74 L77 L79 L96 L100 L112 L116 bodies 1
extrude "Extrude3" add sketch "Sketch1" along normal blind 87.4 contours L1 L2 L3 L8 L9 L10 L11 L14 L18 L22 L25 L29 L32 L36 L42 L50 L51 L58 L59 L66 L67 L71 L75 L76 L78 L90 L92 L104 L108 bodies 1
extrude "Extrude4" add sketch "Sketch1" along normal blind 71.5 contours L1 L6 L8 L12 L13 L14 L15 bodies 1
extrude "Extrude5" add sketch "Sketch1" along normal blind 65 separate body contours L6 L8 L68 L69 L70 L71 L72 L73 L74 L75 L87 | L6 L8 L76 L77 L78 L79 L80 L81 L82 L83 L85 | L61 L62 L68 L72 L84 L86 L87 | L21 L26 L80 L82 L84 L85 L86 | L6 L60 L61 L62 L63 L64 L65 L84 | L6 L20 L21 L23 L24 L26 L27 L84 | L8 L61 L62 L63 L65 L66 L67 L86 | L52 L54 L63 L65 L84 L86 | L8 L21 L22 L23 L25 L26 L27 L86 | L23 L27 L33 L35 L84 L86 | L6 L52 L53 L54 L55 L56 L57 L84 | L6 L28 L30 L31 L33 L34 L35 L84 | L8 L52 L53 L54 L57 L58 L59 L86 | L44 L45 L53 L57 L84 L86 | L8 L28 L29 L32 L33 L34 L35 L86 | L28 L34 L39 L40 L84 L86 | L6 L44 L45 L46 L47 L48 L49 L84 | L6 L37 L38 L39 L40 L41 L43 L84 | L8 L44 L45 L46 L47 L50 L51 L86 | L38 L41 L46 L47 L84 L86 | L8 L36 L38 L39 L40 L41 L42 L86 makes body 2 at (130.4, 21.6667, 22)
extrude "Extrude6" add sketch "Sketch1" along normal blind 71.5 contours L3 L6 L8 L16 L17 L18 L19 bodies 1
extrude "Extrude7" cut sketch "Sketch1" against normal blind 15 contours A0 A2 | A1 A3 | A4 A5 | A6 A7 | A8 A10 | A9 A11 | A12 A14 | A13 A15 | A16 A19 | A17 A18 | A20 A22 | A21 A23 | A24 A25 | A26 A27 bodies 1
